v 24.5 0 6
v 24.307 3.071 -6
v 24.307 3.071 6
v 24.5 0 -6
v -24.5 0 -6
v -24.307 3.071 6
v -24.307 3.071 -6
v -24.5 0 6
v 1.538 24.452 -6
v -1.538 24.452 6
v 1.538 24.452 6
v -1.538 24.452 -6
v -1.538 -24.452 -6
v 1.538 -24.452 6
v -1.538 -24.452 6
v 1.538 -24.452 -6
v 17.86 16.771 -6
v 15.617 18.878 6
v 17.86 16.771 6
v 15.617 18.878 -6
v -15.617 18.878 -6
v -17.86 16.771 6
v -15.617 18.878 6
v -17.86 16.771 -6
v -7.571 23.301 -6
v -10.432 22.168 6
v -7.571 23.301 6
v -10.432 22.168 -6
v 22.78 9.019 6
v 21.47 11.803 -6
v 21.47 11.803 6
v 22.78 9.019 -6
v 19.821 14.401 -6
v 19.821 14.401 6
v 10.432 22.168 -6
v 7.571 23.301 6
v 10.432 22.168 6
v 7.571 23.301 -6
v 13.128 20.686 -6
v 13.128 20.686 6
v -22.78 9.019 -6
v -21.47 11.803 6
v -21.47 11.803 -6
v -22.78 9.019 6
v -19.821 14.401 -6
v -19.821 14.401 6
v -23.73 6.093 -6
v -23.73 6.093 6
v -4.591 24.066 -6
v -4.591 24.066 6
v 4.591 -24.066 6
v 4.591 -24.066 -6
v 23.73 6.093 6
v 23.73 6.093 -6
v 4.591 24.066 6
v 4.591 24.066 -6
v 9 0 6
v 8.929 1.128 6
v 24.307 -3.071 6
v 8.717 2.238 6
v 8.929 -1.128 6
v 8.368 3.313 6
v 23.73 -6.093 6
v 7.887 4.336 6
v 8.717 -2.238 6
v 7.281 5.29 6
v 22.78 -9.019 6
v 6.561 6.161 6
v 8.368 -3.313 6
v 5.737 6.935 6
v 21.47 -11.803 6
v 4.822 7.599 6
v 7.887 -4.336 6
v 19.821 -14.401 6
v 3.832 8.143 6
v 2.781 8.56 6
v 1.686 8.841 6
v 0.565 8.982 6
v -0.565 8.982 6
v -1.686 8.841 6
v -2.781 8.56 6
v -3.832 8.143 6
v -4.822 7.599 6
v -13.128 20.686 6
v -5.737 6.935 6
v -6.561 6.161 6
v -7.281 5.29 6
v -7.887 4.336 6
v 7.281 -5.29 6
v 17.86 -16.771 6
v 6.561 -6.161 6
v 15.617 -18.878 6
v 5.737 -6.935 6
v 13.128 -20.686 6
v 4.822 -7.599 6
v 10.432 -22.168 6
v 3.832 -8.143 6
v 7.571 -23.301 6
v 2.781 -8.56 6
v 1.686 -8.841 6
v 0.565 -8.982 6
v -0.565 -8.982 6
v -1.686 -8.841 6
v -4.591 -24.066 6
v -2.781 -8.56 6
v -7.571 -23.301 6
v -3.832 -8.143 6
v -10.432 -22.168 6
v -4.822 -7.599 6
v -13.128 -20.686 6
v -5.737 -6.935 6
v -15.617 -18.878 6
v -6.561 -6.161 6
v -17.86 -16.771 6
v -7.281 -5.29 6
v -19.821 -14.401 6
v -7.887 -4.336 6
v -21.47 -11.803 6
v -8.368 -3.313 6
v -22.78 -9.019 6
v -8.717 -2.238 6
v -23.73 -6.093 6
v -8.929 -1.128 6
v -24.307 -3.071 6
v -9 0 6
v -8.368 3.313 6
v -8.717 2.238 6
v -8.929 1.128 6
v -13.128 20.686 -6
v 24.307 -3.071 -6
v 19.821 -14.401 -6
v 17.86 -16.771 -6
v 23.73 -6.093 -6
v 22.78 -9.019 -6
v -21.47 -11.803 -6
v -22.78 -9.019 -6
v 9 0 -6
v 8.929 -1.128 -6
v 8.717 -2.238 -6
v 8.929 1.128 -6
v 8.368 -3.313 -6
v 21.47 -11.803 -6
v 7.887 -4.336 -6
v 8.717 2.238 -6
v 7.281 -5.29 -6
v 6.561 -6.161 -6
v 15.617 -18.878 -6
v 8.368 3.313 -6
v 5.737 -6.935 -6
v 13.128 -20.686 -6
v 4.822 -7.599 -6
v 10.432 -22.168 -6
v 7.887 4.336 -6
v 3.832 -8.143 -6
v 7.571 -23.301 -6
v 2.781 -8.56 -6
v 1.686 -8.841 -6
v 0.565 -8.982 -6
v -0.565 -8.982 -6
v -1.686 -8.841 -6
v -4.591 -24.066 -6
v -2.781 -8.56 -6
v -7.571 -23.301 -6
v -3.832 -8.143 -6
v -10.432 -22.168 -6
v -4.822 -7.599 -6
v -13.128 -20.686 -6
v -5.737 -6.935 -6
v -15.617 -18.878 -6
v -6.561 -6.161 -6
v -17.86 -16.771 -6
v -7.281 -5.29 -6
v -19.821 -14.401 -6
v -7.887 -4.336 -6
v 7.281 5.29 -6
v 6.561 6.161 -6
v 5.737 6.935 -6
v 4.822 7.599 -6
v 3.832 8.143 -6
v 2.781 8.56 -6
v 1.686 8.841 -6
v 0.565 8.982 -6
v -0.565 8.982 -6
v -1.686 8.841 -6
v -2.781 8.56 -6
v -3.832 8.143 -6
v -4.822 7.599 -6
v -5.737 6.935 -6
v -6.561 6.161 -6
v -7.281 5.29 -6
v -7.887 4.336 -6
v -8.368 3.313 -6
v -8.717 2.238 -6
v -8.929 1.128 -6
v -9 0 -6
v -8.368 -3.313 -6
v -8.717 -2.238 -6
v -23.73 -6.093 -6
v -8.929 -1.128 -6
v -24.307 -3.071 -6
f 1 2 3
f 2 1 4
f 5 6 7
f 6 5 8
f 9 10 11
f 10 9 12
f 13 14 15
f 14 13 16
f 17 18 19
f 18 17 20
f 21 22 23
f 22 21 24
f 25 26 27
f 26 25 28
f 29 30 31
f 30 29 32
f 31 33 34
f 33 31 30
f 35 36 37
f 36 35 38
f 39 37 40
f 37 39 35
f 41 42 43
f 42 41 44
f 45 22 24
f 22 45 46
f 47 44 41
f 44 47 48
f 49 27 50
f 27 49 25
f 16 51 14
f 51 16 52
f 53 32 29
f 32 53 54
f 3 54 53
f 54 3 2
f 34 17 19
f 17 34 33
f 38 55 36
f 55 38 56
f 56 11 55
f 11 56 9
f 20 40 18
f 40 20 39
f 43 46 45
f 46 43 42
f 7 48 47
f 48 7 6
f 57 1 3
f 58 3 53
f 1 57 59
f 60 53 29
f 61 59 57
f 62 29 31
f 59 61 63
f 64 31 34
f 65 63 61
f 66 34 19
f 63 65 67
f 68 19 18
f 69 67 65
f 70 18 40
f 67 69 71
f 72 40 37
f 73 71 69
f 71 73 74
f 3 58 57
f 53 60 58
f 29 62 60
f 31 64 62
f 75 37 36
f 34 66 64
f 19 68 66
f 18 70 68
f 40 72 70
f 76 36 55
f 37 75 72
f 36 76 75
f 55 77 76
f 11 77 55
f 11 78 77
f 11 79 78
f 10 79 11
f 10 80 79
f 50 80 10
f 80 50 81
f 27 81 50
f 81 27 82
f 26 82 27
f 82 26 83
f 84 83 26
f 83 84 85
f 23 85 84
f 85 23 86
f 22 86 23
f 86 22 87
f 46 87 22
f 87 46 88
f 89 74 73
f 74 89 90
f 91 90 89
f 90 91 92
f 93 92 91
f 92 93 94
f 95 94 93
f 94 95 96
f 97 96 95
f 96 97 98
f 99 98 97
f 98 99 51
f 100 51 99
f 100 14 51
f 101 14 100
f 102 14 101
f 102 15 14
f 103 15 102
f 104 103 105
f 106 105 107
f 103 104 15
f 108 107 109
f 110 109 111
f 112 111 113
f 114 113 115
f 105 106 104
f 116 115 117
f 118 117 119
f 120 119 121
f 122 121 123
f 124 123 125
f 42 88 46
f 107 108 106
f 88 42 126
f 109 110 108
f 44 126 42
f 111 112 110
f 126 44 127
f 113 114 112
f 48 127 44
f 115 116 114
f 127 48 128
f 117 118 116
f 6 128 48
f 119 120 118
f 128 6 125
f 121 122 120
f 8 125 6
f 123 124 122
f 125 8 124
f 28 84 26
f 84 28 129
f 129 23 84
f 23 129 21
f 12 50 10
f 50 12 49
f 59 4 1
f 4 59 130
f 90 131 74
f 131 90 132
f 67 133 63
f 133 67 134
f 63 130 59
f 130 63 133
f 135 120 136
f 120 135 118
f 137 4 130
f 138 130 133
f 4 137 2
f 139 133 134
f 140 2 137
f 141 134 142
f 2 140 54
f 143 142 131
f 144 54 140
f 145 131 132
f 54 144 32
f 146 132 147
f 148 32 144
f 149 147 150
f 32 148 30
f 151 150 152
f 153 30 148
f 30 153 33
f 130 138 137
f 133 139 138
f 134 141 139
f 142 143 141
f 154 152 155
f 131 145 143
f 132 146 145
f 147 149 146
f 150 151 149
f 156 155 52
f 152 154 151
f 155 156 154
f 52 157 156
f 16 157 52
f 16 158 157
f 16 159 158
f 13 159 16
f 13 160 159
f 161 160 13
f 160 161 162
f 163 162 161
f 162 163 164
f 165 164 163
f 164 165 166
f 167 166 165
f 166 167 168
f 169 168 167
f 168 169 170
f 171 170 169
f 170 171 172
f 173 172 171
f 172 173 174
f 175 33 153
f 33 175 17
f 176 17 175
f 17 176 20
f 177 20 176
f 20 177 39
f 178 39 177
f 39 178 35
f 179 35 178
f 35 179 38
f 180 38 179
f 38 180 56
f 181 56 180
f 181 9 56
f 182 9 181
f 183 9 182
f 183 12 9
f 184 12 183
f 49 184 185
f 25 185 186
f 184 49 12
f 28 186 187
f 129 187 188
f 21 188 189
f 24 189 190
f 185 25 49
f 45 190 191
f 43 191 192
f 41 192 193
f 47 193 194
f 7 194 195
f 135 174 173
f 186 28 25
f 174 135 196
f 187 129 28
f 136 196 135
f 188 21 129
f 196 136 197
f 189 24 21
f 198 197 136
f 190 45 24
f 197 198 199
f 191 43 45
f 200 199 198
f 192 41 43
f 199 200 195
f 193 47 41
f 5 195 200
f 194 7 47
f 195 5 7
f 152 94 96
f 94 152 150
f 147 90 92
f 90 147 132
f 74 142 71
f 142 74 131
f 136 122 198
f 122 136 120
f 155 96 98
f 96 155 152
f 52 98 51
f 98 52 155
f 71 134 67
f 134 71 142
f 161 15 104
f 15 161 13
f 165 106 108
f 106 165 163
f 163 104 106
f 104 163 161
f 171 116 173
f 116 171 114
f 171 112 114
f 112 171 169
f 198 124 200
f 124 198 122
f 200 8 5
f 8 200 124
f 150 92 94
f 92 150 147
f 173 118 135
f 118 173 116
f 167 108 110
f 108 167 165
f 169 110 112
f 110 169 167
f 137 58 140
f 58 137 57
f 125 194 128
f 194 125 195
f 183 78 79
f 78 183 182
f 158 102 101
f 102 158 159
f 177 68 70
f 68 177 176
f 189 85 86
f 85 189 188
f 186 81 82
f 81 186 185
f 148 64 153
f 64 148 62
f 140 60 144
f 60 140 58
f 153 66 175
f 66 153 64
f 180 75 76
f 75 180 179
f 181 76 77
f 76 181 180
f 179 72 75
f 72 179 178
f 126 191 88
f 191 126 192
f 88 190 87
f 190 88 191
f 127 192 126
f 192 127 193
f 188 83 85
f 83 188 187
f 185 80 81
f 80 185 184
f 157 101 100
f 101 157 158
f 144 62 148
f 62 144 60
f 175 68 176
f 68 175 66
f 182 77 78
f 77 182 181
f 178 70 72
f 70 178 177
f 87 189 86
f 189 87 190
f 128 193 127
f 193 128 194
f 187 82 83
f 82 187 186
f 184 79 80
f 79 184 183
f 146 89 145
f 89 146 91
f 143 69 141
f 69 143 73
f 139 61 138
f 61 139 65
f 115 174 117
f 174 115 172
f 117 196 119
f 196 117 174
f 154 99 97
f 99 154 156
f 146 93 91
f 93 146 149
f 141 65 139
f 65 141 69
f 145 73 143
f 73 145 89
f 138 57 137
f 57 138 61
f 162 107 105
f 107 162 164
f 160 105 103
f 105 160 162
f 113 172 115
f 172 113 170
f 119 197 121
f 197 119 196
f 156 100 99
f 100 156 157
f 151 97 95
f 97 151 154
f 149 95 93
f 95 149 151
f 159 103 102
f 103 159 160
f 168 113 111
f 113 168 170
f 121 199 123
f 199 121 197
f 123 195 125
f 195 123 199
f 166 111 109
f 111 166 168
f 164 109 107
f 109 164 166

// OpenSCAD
$fn = 50;


difference() {
	union() {
		translate(v = [0, 0, -6.0000000000]) {
			cylinder(h = 12, r = 24.5000000000);
		}
	}
	union() {
		translate(v = [0, 0, -100.0000000000]) {
			cylinder(h = 200, r = 9);
		}
	}
}
